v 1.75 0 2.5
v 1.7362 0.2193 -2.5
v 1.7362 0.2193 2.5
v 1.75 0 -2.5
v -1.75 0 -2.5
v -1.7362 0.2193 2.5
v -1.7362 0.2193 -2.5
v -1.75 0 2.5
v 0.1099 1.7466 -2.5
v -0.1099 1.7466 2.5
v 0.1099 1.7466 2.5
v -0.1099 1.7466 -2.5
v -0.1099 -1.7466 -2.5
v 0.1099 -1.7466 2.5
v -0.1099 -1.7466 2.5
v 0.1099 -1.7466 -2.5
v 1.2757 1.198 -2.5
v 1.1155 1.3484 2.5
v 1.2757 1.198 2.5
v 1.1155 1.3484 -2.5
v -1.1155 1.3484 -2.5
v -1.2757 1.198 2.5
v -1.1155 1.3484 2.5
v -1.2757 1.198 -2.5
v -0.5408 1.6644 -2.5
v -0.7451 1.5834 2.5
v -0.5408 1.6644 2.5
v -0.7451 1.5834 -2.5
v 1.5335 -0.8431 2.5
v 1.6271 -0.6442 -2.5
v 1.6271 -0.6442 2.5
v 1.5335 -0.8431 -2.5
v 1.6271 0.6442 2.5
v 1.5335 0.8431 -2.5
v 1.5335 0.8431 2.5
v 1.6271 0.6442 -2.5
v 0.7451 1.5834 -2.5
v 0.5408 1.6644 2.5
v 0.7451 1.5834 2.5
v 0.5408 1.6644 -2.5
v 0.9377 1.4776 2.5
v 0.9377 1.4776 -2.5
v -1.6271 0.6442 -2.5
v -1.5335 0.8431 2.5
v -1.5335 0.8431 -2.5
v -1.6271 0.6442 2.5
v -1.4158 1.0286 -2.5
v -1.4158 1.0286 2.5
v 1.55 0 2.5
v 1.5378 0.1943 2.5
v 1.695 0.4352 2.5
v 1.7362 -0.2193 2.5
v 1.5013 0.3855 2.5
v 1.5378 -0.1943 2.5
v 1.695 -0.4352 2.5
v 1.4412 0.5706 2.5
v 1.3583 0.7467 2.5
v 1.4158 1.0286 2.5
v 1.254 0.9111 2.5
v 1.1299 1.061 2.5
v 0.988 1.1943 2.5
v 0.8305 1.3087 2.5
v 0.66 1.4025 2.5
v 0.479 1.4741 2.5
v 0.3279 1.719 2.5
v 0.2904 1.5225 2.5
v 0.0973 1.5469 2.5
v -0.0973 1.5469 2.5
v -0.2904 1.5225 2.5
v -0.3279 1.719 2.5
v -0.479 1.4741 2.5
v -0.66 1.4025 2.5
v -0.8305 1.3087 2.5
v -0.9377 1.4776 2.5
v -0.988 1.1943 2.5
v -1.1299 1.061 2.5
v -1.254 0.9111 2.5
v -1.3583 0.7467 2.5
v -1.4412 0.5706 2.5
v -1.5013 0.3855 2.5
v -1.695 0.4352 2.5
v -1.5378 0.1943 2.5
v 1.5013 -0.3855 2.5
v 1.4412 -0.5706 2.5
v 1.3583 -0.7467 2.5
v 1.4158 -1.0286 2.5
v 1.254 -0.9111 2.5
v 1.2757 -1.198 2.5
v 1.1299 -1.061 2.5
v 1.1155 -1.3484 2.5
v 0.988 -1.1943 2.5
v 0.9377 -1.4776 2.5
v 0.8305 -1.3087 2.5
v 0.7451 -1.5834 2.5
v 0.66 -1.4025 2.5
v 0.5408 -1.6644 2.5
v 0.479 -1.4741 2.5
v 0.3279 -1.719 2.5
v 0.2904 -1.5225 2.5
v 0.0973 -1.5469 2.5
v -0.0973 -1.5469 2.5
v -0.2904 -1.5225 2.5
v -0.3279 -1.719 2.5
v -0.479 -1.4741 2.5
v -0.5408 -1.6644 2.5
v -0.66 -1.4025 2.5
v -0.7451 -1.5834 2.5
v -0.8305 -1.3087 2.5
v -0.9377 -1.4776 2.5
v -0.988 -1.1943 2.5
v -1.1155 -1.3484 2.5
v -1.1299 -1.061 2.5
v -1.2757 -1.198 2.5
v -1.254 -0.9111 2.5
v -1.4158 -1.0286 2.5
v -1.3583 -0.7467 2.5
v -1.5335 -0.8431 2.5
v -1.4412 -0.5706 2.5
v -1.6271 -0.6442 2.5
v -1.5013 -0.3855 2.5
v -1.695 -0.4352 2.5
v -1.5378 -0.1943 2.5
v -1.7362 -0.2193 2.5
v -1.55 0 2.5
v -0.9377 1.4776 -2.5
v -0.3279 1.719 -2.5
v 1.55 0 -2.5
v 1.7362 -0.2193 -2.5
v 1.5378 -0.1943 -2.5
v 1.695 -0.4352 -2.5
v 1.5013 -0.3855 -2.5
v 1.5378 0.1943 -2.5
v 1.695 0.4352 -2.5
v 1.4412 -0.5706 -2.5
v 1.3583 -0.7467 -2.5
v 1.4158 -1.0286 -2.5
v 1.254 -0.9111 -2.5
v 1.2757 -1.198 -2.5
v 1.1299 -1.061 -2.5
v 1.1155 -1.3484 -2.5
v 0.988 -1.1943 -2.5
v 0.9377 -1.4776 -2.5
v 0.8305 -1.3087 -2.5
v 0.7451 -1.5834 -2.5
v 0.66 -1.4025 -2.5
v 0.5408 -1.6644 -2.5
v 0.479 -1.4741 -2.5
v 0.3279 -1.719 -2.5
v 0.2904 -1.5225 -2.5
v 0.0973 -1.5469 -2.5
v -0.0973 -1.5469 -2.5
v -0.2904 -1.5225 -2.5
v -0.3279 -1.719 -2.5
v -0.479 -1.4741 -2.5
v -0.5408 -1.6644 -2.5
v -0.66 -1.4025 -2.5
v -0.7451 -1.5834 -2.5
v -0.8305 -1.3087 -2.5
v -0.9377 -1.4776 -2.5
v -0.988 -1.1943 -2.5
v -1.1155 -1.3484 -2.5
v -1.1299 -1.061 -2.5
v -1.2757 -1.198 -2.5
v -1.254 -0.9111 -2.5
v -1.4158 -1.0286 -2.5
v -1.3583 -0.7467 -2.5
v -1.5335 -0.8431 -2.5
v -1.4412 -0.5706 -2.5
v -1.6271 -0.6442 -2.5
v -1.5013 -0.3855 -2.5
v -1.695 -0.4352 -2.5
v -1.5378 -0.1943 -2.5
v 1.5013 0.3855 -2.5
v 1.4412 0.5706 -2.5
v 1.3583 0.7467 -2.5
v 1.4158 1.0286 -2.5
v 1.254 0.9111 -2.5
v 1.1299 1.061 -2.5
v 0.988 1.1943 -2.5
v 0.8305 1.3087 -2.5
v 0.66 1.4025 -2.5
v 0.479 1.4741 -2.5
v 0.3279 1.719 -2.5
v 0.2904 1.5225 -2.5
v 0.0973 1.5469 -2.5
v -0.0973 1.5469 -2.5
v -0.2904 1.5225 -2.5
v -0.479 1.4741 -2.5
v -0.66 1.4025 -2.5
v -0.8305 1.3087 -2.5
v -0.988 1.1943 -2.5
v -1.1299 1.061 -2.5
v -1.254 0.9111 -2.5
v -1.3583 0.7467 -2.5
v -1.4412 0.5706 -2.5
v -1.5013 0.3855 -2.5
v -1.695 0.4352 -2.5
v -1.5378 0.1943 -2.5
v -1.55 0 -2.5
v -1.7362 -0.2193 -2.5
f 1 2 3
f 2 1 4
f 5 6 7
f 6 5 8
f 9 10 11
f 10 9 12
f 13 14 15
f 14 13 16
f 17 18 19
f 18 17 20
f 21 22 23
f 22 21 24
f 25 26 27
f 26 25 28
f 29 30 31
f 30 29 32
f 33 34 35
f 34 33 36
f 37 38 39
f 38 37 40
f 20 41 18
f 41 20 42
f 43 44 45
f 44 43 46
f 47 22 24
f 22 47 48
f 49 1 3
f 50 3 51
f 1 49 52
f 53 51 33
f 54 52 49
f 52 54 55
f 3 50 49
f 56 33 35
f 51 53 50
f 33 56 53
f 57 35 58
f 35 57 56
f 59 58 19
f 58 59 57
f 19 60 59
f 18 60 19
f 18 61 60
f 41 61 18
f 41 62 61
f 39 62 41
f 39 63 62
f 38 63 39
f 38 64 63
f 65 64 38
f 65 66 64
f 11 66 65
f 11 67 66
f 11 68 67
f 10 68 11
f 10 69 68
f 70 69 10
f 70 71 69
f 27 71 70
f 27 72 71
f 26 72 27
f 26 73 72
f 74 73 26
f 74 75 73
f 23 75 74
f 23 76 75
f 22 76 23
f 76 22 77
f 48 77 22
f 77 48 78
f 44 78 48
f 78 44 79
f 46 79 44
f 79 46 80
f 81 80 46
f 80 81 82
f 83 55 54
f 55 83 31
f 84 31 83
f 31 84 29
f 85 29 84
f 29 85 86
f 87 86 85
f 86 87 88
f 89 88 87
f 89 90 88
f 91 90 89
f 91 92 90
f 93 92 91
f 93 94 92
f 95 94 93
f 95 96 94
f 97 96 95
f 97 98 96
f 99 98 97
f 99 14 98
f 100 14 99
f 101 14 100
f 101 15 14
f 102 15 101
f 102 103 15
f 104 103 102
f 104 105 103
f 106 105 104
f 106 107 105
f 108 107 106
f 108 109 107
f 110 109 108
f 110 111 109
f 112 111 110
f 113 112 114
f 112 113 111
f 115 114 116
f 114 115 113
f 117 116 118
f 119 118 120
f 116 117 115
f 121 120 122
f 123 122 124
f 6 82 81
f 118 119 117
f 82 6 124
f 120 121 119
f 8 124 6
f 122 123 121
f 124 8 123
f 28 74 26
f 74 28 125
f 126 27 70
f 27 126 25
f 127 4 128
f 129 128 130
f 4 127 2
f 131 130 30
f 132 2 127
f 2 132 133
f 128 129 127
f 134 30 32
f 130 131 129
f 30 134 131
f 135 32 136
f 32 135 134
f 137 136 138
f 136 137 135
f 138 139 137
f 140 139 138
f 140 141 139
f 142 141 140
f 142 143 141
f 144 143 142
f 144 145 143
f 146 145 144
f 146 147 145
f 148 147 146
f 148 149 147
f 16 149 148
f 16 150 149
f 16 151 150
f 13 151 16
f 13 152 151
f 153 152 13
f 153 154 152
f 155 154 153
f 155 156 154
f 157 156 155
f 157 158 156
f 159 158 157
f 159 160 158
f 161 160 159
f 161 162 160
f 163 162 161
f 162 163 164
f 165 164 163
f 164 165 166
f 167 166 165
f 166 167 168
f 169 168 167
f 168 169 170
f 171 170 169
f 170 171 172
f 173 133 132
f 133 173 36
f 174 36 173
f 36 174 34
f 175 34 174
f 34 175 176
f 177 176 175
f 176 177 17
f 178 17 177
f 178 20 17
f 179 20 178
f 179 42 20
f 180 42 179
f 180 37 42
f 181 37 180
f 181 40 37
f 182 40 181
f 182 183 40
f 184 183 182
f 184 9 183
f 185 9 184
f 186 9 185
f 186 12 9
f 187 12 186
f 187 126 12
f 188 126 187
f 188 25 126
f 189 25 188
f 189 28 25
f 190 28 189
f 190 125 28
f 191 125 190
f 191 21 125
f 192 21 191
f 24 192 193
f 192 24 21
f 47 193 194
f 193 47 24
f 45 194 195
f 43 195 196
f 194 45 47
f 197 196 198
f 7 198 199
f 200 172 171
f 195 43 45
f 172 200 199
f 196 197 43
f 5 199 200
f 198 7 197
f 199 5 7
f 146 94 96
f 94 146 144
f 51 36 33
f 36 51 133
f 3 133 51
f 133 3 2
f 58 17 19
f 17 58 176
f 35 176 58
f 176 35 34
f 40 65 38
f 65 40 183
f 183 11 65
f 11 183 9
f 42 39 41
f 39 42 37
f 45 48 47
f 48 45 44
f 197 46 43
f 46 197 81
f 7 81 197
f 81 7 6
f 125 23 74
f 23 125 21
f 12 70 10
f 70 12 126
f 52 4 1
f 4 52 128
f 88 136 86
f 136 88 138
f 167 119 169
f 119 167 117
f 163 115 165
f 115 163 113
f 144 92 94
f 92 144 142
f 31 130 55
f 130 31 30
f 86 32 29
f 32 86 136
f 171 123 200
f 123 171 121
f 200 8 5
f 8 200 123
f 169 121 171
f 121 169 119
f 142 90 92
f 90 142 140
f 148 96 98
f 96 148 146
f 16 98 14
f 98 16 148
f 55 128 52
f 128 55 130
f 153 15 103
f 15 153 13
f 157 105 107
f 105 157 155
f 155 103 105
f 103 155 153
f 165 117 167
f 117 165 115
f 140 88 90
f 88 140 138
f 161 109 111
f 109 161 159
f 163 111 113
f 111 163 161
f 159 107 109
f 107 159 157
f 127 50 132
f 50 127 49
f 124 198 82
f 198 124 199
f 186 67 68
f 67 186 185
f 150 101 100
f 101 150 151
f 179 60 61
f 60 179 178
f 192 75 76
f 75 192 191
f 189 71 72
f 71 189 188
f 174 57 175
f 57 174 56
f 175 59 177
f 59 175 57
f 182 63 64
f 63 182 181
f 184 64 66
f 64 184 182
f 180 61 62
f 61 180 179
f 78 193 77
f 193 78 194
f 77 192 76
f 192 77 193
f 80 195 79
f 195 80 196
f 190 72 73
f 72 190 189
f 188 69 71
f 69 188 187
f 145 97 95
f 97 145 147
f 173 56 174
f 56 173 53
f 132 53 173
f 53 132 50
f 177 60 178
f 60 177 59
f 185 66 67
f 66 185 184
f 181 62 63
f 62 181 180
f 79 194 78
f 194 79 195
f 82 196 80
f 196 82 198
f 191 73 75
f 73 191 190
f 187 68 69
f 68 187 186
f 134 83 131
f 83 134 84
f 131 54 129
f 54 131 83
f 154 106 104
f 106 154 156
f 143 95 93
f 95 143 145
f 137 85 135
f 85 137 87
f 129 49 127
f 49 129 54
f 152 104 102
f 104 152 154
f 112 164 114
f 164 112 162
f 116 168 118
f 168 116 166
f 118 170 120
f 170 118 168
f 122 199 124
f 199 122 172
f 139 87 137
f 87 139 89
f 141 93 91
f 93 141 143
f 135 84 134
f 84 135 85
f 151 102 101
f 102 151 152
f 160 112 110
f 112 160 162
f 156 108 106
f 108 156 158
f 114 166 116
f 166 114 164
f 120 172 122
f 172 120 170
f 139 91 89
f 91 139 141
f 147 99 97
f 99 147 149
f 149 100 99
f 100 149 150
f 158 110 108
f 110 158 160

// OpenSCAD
$fn = 50;


difference() {
	union() {
		translate(v = [0, 0, -2.5000000000]) {
			cylinder(h = 5, r = 1.7500000000);
		}
	}
	union() {
		translate(v = [0, 0, -100.0000000000]) {
			cylinder(h = 200, r = 1.5500000000);
		}
	}
}
